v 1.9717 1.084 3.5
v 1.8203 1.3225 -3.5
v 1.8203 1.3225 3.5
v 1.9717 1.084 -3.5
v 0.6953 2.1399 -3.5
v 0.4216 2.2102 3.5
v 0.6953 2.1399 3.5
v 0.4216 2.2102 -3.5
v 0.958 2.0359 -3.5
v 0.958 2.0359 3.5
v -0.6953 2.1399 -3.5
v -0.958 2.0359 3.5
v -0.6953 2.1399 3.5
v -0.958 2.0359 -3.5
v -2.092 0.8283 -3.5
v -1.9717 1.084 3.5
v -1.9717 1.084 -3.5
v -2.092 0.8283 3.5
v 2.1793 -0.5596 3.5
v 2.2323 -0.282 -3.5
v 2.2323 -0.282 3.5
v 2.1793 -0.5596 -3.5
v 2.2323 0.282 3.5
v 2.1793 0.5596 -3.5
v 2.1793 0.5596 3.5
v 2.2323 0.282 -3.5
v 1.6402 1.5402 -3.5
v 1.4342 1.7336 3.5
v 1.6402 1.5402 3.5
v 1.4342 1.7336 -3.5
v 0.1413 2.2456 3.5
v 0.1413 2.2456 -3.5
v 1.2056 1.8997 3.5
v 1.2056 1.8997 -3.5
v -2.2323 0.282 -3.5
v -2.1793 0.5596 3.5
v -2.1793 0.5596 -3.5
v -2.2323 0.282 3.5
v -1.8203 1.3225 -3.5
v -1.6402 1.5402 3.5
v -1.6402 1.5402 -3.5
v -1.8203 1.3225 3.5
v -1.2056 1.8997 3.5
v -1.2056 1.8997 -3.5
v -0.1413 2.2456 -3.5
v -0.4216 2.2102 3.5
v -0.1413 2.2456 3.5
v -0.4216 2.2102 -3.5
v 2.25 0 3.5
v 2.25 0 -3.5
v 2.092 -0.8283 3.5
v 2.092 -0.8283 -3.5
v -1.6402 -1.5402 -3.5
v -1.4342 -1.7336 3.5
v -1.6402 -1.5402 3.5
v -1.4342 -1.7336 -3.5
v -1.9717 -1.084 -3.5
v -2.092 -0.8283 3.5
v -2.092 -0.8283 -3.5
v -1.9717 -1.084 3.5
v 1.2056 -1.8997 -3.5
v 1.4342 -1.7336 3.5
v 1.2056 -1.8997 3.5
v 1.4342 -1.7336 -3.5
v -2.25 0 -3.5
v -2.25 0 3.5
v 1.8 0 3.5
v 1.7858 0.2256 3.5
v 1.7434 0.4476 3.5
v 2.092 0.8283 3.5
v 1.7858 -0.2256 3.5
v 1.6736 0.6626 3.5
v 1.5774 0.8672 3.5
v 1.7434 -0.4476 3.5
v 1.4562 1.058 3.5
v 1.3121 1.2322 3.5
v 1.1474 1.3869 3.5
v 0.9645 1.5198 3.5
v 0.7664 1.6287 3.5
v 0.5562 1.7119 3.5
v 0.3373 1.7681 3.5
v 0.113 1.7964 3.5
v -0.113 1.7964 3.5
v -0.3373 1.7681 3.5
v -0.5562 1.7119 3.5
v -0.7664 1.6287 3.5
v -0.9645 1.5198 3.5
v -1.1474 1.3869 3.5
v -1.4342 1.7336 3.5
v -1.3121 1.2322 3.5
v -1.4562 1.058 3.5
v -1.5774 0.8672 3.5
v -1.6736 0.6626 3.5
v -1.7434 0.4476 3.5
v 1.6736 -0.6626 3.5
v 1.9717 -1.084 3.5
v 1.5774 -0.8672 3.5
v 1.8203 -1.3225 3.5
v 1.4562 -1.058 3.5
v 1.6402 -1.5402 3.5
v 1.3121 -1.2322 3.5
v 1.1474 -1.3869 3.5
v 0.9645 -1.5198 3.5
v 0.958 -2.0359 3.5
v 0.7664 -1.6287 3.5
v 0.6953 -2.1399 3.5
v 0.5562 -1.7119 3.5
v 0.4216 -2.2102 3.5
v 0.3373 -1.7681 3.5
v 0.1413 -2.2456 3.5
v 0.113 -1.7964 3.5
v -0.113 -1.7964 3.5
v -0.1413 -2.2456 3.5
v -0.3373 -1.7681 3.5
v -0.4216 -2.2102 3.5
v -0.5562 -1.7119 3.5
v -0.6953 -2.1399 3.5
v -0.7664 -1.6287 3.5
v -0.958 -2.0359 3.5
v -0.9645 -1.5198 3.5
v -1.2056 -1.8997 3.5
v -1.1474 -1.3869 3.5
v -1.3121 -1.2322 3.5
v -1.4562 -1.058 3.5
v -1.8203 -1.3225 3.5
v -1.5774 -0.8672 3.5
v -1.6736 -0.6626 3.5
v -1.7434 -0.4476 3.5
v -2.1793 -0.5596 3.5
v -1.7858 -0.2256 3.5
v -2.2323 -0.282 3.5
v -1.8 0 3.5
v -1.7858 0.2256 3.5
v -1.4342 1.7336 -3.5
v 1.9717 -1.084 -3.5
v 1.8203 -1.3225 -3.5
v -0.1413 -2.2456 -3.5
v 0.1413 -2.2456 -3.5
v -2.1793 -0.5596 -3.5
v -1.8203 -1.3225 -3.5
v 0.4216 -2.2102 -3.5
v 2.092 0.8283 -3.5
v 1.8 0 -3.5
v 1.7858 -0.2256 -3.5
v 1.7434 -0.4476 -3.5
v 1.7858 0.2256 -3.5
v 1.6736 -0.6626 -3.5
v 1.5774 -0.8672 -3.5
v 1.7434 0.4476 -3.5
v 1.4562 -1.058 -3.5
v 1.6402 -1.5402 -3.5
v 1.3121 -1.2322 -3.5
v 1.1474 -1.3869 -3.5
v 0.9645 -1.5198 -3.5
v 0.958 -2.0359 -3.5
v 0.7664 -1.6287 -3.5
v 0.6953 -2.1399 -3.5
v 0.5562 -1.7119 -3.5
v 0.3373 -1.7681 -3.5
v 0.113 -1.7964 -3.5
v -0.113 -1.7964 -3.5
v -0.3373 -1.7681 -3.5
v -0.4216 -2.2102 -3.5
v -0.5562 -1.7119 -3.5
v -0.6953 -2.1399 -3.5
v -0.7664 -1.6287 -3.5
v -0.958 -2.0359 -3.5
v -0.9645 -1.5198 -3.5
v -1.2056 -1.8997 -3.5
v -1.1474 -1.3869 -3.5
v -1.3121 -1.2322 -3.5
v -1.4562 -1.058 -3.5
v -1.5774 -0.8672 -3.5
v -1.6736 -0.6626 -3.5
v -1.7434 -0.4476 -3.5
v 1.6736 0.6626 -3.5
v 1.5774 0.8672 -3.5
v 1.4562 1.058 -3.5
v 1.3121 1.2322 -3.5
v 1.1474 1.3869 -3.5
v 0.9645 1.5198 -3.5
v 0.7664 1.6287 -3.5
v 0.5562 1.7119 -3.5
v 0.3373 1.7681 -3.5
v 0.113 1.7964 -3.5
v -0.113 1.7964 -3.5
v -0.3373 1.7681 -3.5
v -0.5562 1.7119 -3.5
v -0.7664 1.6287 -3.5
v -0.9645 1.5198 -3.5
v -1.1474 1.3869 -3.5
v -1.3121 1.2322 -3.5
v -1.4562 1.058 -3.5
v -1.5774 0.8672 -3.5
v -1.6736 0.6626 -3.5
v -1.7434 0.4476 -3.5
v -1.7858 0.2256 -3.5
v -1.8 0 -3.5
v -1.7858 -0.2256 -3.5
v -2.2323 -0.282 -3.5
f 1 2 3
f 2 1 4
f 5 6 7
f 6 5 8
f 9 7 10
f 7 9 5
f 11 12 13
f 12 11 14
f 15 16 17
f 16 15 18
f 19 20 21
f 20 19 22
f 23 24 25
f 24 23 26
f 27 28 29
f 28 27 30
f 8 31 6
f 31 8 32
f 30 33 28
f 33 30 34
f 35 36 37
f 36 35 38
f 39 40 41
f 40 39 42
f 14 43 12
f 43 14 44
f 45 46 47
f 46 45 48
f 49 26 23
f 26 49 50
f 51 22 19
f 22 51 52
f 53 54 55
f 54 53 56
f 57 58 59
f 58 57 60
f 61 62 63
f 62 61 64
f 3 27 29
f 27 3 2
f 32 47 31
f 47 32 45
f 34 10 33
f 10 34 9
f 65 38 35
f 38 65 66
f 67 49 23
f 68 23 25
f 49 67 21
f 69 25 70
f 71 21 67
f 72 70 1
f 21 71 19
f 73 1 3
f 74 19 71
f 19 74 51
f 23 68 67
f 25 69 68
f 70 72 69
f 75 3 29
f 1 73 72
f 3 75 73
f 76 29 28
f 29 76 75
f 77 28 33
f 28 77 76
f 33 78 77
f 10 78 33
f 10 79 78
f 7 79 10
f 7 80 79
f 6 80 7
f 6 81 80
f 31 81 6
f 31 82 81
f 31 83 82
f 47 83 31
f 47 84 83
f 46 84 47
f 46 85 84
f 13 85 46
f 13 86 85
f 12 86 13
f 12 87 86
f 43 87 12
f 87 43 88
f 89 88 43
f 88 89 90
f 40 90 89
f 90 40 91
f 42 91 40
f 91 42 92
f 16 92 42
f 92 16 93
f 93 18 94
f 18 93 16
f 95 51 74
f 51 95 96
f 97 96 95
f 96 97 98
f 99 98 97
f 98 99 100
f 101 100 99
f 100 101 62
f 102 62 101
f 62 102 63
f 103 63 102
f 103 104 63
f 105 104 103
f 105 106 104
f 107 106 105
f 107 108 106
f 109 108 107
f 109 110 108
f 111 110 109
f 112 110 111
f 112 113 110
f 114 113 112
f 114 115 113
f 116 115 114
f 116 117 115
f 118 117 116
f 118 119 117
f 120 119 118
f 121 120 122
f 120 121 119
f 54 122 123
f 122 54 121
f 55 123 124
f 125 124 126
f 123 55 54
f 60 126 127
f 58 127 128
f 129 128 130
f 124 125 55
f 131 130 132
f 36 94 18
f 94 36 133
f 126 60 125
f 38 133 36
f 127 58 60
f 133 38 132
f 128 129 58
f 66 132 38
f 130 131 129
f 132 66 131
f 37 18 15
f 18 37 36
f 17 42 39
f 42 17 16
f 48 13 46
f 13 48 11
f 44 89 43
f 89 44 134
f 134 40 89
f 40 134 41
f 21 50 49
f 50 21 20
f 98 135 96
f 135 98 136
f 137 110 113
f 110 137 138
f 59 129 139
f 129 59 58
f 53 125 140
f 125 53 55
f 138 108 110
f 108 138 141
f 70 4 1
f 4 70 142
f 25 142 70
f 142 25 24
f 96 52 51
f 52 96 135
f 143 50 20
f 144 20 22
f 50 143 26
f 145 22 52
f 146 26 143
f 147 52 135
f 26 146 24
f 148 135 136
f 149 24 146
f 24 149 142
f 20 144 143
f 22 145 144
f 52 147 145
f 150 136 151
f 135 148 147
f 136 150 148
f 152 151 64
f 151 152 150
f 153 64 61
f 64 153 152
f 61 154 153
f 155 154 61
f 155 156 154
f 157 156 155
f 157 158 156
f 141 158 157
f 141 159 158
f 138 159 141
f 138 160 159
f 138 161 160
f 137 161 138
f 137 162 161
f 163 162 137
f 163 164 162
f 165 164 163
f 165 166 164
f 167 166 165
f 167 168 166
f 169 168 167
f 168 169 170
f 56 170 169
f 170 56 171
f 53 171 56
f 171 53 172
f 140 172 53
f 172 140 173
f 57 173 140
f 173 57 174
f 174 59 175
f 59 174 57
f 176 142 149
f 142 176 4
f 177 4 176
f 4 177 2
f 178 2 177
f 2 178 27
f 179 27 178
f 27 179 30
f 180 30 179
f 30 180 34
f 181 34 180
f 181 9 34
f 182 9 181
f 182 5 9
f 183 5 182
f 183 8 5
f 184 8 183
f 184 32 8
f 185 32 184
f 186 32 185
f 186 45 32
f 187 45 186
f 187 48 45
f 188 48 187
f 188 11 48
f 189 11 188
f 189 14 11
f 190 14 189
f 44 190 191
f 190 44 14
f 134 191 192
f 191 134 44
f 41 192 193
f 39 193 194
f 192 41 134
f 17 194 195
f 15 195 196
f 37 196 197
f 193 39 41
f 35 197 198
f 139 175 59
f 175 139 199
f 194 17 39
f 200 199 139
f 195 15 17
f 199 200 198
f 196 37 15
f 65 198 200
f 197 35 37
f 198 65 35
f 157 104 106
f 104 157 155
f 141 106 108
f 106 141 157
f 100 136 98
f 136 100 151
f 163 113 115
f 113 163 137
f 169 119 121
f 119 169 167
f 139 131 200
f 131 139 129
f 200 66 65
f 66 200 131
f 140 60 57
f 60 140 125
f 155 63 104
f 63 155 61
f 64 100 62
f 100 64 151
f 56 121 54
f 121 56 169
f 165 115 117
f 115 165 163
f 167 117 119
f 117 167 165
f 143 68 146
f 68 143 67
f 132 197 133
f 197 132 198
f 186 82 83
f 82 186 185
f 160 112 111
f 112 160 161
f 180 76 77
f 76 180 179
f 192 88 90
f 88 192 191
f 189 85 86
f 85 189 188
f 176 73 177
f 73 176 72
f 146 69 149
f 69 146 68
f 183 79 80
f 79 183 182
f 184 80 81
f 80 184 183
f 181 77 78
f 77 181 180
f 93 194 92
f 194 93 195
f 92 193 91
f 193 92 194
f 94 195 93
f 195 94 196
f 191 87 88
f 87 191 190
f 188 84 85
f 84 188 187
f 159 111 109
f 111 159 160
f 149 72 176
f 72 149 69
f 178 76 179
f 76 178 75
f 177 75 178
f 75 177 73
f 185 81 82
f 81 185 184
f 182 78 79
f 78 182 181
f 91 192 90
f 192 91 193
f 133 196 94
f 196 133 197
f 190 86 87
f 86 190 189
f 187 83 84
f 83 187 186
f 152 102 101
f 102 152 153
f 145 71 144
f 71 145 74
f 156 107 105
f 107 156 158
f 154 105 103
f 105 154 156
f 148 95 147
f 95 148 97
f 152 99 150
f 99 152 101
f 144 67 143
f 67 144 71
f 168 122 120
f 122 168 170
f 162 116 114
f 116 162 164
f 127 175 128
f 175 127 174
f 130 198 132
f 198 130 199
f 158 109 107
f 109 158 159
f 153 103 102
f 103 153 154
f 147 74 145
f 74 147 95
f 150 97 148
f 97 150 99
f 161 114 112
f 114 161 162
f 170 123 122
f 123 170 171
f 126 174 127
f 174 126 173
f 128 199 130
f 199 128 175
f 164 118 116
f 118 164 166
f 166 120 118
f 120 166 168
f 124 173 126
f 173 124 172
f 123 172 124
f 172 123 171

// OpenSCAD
$fn = 50;


difference() {
	union() {
		translate(v = [0, 0, -3.5000000000]) {
			cylinder(h = 7, r = 2.2500000000);
		}
	}
	union() {
		translate(v = [0, 0, -100.0000000000]) {
			cylinder(h = 200, r = 1.8000000000);
		}
	}
}
